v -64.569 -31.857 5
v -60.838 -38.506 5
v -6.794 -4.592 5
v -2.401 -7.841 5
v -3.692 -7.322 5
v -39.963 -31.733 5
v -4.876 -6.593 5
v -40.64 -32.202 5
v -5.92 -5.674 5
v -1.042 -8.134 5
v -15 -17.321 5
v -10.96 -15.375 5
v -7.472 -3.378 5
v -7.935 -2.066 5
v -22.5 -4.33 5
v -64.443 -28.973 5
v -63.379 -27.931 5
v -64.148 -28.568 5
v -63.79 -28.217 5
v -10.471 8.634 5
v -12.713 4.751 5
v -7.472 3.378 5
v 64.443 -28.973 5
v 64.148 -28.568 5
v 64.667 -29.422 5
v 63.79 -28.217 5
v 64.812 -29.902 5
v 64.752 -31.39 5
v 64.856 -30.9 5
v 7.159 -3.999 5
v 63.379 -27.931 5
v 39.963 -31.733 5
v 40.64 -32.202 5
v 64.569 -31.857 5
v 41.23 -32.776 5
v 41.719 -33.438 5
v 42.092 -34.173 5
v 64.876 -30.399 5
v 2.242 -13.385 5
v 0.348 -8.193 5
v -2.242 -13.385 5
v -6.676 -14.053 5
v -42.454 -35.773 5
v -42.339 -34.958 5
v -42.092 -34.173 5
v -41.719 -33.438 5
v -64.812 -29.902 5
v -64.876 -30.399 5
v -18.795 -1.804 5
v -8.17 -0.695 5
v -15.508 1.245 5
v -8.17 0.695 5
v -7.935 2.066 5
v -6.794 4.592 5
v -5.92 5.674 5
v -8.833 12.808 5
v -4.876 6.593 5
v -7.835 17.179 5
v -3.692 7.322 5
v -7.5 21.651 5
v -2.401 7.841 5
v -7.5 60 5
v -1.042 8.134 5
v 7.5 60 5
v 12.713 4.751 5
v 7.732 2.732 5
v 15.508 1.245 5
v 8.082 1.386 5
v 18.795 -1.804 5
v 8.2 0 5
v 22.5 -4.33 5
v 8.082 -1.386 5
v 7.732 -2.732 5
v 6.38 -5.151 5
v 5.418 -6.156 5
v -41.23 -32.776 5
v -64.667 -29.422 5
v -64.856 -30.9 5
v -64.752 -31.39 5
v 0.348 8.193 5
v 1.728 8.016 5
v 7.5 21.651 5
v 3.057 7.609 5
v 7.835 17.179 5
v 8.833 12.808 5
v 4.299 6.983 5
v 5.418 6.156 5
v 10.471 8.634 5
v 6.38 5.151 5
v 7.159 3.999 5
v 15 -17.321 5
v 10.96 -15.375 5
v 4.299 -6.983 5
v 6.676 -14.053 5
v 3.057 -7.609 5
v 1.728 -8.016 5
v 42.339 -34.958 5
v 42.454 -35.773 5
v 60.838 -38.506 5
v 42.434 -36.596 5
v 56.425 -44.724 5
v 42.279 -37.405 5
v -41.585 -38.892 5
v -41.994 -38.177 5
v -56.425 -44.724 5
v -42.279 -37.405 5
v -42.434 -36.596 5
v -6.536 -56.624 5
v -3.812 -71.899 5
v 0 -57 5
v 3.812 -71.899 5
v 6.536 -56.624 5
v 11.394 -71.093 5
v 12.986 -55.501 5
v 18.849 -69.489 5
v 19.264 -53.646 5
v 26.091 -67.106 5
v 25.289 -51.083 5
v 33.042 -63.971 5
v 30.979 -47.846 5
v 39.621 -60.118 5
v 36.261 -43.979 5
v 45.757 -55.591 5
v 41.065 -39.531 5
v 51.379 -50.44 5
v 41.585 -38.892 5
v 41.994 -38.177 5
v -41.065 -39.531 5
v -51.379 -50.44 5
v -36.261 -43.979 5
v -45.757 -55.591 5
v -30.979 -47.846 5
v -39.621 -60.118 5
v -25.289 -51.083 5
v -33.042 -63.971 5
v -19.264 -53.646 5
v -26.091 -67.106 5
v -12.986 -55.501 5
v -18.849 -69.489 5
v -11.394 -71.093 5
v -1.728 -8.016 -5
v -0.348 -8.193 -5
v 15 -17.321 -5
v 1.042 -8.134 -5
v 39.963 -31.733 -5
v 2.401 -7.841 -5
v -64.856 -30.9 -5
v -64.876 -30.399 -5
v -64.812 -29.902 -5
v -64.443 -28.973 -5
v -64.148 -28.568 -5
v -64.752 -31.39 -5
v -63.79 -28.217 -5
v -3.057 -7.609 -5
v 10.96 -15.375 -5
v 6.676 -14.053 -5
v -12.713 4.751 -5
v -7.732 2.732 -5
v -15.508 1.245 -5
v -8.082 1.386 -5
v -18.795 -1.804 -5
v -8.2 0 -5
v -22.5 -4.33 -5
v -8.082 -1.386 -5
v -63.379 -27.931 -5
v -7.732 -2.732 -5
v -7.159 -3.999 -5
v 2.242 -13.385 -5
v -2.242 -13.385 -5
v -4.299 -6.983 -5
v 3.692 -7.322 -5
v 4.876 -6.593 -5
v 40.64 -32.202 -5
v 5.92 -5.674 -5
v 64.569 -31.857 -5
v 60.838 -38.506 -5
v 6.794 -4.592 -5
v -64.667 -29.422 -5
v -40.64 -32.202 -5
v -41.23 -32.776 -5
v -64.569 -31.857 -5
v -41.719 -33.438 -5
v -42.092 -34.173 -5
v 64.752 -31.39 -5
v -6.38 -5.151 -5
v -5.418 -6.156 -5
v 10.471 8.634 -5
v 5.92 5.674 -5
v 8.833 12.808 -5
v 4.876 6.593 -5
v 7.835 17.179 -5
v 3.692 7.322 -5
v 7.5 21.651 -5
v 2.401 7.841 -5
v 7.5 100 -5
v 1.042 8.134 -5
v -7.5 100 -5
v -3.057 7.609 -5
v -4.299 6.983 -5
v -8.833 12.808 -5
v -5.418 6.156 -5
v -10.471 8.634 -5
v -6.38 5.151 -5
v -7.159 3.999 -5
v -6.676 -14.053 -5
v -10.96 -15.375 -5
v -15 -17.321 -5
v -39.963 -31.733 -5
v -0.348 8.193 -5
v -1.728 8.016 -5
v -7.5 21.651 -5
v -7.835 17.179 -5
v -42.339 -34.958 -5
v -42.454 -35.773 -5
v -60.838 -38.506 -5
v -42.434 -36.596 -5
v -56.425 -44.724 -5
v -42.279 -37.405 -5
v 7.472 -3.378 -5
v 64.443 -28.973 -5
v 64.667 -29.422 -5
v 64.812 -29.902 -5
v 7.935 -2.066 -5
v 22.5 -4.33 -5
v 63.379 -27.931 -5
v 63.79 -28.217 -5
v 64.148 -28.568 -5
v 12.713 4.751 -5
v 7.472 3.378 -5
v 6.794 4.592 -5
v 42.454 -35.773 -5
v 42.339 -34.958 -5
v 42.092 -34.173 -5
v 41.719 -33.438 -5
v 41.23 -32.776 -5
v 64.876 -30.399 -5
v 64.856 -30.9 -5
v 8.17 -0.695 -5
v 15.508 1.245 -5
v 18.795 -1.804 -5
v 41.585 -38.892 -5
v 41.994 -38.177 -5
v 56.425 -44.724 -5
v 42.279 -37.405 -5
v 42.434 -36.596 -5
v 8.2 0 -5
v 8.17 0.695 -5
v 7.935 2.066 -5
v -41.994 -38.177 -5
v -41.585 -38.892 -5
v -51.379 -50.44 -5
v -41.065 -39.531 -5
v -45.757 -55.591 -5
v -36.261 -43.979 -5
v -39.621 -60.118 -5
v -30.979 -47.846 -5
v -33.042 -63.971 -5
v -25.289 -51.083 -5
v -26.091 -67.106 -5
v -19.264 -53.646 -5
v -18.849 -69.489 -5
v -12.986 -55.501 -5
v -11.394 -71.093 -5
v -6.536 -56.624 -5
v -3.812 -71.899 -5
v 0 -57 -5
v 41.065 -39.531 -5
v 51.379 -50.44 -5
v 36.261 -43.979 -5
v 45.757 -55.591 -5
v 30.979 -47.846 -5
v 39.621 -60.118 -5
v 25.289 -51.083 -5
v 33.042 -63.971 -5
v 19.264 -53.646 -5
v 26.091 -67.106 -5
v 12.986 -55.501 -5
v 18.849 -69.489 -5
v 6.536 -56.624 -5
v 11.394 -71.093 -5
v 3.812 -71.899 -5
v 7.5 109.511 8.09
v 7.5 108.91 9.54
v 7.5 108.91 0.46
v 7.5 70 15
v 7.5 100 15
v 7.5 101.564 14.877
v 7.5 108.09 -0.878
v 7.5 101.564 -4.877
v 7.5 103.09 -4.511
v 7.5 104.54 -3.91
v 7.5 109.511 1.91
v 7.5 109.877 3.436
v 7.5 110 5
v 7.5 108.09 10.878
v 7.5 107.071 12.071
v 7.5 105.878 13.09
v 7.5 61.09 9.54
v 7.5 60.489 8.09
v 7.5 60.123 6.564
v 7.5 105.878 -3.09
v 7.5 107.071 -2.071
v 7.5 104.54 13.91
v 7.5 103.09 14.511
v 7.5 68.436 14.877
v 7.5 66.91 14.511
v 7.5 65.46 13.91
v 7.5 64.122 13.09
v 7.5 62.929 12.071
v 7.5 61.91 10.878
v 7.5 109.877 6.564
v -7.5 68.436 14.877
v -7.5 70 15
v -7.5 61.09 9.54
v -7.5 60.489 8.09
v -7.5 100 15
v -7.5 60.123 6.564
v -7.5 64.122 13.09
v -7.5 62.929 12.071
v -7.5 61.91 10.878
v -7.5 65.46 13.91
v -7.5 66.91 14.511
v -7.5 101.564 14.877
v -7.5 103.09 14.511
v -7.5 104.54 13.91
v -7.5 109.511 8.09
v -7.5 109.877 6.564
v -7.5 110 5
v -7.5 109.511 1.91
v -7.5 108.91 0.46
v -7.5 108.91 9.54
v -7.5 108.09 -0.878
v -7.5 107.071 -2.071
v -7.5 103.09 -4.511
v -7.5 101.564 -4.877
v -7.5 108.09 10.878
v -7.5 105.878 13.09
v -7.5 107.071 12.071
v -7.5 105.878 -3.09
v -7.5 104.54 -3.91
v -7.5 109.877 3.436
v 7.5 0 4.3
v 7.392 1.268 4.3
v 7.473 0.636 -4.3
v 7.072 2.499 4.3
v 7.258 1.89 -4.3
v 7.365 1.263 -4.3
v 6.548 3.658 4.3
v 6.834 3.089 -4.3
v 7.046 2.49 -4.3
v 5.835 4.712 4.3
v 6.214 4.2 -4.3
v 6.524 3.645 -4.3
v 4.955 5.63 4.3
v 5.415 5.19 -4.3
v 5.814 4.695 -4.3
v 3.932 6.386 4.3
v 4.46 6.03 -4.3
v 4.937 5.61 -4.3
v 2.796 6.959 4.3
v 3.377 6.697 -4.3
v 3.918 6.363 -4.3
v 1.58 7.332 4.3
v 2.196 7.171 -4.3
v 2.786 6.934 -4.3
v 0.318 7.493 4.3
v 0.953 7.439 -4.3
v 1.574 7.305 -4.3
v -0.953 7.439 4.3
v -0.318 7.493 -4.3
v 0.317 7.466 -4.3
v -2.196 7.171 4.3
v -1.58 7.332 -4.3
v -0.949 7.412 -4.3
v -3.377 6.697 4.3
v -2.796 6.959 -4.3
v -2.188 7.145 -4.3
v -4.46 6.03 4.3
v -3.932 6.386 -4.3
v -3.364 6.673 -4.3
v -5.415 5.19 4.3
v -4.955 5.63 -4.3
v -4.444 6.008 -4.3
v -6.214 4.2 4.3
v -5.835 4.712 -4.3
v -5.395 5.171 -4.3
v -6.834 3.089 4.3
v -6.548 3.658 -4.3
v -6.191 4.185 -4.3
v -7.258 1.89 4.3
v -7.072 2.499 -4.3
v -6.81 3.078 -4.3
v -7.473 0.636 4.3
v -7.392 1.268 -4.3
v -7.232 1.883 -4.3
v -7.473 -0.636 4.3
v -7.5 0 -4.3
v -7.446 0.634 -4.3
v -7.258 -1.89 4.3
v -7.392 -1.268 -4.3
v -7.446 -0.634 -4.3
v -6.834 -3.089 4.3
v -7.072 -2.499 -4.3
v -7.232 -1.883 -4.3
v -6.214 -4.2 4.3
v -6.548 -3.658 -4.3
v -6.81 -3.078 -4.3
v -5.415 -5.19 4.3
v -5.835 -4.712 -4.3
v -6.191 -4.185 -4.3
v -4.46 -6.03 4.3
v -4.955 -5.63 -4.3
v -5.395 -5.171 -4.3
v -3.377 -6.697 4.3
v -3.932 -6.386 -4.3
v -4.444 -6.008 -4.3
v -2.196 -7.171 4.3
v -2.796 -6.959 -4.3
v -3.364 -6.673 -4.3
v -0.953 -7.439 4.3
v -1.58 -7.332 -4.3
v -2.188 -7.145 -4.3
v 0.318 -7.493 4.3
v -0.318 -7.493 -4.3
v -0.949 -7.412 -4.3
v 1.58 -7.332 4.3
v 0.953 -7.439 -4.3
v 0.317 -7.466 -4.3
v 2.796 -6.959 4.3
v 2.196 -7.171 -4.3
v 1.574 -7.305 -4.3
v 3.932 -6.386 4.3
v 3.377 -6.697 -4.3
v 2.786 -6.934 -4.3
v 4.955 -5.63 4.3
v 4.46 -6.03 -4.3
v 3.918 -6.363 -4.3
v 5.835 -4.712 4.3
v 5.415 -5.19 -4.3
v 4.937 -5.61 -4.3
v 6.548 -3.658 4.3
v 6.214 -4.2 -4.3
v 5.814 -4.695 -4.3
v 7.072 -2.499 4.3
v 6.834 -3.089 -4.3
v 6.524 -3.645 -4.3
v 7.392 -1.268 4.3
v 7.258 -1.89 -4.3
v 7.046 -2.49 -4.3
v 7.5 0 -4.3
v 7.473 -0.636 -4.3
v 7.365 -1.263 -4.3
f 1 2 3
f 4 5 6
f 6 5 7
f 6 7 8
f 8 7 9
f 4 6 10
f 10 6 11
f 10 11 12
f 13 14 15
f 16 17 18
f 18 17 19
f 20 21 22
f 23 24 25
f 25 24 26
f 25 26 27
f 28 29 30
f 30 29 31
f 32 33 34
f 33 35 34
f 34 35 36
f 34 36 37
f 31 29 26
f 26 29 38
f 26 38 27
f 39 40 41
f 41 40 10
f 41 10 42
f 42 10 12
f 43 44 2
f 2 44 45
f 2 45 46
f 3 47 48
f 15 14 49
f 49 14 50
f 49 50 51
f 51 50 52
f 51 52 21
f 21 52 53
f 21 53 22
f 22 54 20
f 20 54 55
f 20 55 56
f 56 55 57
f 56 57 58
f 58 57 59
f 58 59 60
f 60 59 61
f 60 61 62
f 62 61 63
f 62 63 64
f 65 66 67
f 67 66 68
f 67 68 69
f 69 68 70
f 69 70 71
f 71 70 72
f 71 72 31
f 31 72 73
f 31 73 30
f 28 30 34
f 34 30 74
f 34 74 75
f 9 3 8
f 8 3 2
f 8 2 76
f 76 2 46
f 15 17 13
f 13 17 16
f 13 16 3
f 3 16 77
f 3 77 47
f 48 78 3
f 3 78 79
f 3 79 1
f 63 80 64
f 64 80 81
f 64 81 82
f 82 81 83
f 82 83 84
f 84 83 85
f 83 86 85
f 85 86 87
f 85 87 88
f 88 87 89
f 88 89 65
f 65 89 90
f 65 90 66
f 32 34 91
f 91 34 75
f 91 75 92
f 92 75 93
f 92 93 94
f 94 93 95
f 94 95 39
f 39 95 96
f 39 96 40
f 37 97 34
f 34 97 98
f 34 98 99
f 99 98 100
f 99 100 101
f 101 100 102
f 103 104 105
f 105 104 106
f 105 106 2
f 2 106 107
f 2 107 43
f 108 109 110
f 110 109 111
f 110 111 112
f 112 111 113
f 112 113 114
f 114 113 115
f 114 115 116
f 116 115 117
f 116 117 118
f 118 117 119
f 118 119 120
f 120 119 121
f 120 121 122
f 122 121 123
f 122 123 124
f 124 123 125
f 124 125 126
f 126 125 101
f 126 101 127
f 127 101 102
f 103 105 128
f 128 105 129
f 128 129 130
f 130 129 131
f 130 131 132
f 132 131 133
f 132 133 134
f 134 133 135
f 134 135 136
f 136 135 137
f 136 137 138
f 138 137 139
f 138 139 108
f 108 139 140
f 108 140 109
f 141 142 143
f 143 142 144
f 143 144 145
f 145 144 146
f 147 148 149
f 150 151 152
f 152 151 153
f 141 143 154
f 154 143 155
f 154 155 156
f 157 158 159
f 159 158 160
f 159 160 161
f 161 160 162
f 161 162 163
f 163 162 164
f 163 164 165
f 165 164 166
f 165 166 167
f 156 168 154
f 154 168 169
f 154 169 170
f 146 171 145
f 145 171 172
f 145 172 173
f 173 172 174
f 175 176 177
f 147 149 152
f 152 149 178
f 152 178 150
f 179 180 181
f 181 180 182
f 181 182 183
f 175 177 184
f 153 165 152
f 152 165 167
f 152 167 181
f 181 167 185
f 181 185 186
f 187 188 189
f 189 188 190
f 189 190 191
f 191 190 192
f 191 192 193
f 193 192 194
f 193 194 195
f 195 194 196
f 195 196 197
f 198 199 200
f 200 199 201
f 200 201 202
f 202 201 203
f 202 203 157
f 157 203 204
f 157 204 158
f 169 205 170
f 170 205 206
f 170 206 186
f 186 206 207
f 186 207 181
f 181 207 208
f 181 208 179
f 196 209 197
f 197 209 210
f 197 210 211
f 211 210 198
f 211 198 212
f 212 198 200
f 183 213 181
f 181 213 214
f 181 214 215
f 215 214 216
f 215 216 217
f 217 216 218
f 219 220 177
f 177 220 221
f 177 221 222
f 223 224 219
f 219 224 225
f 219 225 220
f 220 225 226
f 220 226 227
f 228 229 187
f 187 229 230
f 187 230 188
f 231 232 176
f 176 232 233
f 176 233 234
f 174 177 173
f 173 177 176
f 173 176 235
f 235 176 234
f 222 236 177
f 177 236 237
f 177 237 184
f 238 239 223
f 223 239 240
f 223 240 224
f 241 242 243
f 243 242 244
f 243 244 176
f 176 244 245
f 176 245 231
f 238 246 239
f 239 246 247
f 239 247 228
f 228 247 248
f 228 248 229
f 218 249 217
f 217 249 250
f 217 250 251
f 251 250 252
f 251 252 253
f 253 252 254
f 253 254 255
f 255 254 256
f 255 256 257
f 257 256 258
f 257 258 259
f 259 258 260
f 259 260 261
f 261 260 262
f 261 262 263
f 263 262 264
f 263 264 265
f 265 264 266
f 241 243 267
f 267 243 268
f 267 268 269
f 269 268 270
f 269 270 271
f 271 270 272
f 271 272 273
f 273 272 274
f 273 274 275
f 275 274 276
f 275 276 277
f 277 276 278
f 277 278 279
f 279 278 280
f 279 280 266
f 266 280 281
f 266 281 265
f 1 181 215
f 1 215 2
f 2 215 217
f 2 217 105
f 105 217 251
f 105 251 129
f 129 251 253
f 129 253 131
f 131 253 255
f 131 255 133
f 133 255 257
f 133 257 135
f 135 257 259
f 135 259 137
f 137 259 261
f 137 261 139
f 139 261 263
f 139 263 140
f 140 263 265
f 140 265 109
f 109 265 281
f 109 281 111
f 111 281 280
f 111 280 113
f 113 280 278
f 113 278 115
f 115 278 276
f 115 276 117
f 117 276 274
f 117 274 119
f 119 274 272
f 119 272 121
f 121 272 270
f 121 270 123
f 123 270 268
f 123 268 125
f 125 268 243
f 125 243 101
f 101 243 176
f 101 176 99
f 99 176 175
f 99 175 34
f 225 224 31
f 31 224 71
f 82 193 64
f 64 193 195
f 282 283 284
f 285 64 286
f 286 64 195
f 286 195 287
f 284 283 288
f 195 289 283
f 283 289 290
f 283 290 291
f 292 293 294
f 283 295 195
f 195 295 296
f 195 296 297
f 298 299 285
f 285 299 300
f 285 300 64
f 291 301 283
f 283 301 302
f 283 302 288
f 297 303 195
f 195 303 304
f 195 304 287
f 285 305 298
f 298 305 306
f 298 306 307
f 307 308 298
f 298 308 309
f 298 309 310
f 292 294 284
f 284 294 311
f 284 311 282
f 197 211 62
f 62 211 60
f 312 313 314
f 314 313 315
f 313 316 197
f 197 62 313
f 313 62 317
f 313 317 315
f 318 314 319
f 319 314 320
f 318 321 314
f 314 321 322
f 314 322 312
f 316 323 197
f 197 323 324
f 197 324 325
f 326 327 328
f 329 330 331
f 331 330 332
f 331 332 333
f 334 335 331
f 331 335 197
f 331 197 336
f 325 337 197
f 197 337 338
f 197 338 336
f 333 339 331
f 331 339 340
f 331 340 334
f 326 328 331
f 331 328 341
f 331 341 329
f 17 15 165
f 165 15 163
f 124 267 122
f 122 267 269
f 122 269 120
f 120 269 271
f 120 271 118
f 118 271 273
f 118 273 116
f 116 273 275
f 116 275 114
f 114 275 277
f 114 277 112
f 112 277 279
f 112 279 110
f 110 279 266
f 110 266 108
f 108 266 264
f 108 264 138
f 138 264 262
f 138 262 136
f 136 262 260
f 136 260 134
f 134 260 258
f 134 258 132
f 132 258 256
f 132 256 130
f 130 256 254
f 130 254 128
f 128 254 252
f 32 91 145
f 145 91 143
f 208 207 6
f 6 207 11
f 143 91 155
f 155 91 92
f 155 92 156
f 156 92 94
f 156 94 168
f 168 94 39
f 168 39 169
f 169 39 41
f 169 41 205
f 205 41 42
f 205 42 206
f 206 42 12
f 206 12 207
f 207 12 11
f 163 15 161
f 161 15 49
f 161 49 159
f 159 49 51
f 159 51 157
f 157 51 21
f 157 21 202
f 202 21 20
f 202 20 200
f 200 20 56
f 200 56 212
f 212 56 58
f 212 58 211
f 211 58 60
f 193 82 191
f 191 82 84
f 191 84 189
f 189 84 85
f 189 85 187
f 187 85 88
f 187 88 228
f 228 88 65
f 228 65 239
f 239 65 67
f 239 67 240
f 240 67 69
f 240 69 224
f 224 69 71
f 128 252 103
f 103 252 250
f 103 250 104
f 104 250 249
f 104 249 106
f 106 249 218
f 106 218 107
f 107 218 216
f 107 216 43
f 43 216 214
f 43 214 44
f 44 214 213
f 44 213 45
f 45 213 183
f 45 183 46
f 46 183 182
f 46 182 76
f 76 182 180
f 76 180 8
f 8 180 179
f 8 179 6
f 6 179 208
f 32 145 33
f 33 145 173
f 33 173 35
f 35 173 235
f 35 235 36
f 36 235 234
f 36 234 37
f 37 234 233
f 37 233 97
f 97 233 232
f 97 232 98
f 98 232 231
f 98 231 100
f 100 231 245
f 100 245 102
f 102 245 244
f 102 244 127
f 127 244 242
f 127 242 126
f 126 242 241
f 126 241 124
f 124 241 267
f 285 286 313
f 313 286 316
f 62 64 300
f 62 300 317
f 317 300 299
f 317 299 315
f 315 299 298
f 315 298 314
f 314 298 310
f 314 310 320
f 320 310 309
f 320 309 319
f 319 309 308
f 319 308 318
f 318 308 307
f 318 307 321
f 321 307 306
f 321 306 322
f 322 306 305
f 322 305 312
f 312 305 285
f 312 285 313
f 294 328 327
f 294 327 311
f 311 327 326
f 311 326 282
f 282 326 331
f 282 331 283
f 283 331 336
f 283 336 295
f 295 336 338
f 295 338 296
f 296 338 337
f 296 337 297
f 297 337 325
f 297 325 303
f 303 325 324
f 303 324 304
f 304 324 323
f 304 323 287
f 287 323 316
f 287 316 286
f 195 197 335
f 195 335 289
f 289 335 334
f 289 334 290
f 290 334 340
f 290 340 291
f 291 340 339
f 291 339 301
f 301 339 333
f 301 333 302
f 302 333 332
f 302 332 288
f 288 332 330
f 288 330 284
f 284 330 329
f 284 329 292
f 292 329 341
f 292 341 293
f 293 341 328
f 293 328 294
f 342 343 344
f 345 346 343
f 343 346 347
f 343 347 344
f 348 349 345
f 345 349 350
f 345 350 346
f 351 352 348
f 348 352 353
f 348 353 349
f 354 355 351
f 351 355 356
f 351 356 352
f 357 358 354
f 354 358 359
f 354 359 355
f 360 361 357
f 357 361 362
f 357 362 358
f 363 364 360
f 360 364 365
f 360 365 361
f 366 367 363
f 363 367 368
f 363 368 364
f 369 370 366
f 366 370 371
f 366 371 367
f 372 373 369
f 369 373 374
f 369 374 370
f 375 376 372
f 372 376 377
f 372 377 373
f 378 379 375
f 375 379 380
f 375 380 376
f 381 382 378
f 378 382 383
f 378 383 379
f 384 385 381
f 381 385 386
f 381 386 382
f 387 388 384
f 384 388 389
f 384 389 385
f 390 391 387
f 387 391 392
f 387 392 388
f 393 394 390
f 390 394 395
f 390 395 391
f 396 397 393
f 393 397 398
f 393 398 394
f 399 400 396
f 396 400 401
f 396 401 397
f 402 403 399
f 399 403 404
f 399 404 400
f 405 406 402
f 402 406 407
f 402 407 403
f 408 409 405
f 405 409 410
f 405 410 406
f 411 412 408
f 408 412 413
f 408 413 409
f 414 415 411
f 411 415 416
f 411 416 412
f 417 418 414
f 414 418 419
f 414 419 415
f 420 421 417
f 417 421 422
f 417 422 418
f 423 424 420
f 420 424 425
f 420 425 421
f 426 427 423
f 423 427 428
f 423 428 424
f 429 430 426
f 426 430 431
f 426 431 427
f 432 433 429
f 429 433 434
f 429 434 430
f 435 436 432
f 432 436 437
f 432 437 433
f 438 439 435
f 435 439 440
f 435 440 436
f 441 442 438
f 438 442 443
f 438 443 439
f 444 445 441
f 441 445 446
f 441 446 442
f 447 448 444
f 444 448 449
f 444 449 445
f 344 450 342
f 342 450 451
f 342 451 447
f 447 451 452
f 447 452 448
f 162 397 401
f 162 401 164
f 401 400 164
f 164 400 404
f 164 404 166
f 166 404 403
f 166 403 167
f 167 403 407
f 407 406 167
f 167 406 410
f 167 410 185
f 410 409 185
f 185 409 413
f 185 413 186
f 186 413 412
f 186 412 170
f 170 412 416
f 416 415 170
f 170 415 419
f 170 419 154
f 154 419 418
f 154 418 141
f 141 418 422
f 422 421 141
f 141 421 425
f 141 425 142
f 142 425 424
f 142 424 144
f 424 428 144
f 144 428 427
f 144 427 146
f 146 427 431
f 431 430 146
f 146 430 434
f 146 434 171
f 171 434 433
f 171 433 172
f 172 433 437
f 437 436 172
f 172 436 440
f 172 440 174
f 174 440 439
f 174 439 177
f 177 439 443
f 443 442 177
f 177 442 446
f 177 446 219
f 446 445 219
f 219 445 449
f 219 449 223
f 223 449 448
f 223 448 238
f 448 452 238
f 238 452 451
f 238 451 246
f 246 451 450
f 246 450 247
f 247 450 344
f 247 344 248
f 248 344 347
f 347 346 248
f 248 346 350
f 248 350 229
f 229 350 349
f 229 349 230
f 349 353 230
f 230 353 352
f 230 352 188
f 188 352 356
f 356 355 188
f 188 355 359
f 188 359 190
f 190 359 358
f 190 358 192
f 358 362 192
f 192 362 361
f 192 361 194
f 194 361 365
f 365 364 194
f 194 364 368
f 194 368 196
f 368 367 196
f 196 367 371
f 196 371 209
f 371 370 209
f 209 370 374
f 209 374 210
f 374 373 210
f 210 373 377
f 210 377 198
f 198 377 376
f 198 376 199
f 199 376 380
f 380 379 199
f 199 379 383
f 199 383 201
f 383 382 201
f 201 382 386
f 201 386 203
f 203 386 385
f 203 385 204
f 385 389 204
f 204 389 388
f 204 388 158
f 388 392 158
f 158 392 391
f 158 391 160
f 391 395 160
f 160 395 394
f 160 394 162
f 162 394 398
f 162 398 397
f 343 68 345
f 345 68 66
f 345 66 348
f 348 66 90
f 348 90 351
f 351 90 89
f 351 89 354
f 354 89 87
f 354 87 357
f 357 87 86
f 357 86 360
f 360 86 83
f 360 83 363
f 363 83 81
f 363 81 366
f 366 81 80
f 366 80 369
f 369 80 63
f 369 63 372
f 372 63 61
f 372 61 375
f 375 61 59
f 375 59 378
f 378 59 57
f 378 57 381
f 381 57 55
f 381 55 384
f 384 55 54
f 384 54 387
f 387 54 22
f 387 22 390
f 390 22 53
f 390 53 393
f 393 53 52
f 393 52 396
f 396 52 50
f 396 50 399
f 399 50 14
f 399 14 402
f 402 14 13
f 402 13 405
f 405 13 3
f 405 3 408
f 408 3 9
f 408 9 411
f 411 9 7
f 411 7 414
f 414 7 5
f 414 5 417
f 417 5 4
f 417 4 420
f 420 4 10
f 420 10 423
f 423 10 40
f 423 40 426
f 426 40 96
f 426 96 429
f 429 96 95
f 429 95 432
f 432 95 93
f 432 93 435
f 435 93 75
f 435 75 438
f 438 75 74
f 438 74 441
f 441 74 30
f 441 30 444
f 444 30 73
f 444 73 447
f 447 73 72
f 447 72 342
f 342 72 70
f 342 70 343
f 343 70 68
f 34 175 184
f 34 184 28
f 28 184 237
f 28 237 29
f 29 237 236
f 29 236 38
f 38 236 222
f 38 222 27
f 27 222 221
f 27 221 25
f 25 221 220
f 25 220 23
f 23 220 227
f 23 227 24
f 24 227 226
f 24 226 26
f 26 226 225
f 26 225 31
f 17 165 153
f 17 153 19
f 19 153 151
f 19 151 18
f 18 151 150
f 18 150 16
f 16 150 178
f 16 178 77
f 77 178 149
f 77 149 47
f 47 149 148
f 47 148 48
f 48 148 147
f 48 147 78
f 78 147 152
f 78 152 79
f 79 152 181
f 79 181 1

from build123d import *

# Parameters (mm, degrees)
EXTRUDE_1_DEPTH     = 5
FILLET_1_R          = 30
FILLET_2_R          = 5
SKETCH_9_W          = 10
SKETCH_9_H          = 50
EXTRUDE_3_DEPTH     = 15
FILLET_4_R          = 10
CUT_EXTRUDE_1_REACH = 130.55
SKETCH_10_R         = 7.5
CHAMFER_1_SIZE      = 0.7
FILLET_5_R          = 3


with BuildPart() as part:
    # 스케치2 → 보스-돌출1 (new, symmetric)
    with BuildSketch(Plane.XY):
        with BuildLine():
            Line((-65.764615213, -29.308964258), (-7.5, 4.330127019))
            Line((-7.5, 4.330127019), (-7.5, 110))
            Line((-7.5, 110), (0, 110))
            Line((0, 110), (7.5, 110))
            Line((7.5, 110), (7.5, 4.330127019))
            Line((7.5, 4.330127019), (65.764615213, -29.308964258))
            ThreePointArc((65.764615213, -29.308964258), (0, -72), (-65.764615213, -29.308964258))
        make_face()
        with BuildLine():
            Line((45.184267135, -34.747402831), (0, -8.660254038))
            Line((0, -8.660254038), (-45.184267135, -34.747402831))
            ThreePointArc((-45.184267135, -34.747402831), (0, -57), (45.184267135, -34.747402831))
        make_face(mode=Mode.SUBTRACT)
    extrude(amount=EXTRUDE_1_DEPTH, both=True)

    # 필렛1
    fillet_1_edges = [part.edges().sort_by_distance(p)[0] for p in [
        (-7.5, 4.330127019, 0),
        (7.5, 4.330127019, 0),
        (0, -8.660254038, 0),
    ]]
    fillet(fillet_1_edges, radius=FILLET_1_R)

    # 필렛2
    fillet_2_edges = [part.edges().sort_by_distance(p)[0] for p in [
        (-45.184267135, -34.747402831, 0),
        (45.184267135, -34.747402831, 0),
    ]]
    fillet(fillet_2_edges, radius=FILLET_2_R)

    # 스케치9 → 보스-돌출3 (add)
    with BuildSketch(Plane(origin=(7.5, 0, 0), x_dir=(0, 0, -1), z_dir=(1, 0, 0))):
        with Locations((-10, 85)):
            Rectangle(SKETCH_9_W, SKETCH_9_H)
    extrude(amount=-EXTRUDE_3_DEPTH)

    # 필렛4
    fillet_4_edges = [part.edges().sort_by_distance(p)[0] for p in [
        (0, 110, -5),
        (0, 110, 15),
        (0, 60, 15),
    ]]
    fillet(fillet_4_edges, radius=FILLET_4_R - 0.0001)  # a hair under: the kernel refuses the full size

    # 스케치10 → 컷-돌출1 (cut, up to next)
    with BuildSketch(Plane.XY.offset(5), mode=Mode.PRIVATE) as cut_extrude_1_sk1:
        Circle(SKETCH_10_R)
    cut_extrude_1_tool1 = extrude(cut_extrude_1_sk1.sketch, amount=-CUT_EXTRUDE_1_REACH, mode=Mode.PRIVATE) & part.part
    add(cut_extrude_1_tool1.solids().sort_by_distance((0, 0, 5))[0], mode=Mode.SUBTRACT)

    # 모따기1
    chamfer_1_edges = [part.edges().sort_by_distance(p)[0] for p in [
        (-7.5, 0, 5),
        (-7.5, 0, -5),
    ]]
    chamfer(chamfer_1_edges, length=CHAMFER_1_SIZE)

    # 필렛5
    fillet_5_edges = [part.edges().sort_by_distance(p)[0] for p in [
        (-65.764615213, -29.308964258, 0),
        (65.764615213, -29.308964258, 0),
    ]]
    fillet(fillet_5_edges, radius=FILLET_5_R)


solid = part.part
